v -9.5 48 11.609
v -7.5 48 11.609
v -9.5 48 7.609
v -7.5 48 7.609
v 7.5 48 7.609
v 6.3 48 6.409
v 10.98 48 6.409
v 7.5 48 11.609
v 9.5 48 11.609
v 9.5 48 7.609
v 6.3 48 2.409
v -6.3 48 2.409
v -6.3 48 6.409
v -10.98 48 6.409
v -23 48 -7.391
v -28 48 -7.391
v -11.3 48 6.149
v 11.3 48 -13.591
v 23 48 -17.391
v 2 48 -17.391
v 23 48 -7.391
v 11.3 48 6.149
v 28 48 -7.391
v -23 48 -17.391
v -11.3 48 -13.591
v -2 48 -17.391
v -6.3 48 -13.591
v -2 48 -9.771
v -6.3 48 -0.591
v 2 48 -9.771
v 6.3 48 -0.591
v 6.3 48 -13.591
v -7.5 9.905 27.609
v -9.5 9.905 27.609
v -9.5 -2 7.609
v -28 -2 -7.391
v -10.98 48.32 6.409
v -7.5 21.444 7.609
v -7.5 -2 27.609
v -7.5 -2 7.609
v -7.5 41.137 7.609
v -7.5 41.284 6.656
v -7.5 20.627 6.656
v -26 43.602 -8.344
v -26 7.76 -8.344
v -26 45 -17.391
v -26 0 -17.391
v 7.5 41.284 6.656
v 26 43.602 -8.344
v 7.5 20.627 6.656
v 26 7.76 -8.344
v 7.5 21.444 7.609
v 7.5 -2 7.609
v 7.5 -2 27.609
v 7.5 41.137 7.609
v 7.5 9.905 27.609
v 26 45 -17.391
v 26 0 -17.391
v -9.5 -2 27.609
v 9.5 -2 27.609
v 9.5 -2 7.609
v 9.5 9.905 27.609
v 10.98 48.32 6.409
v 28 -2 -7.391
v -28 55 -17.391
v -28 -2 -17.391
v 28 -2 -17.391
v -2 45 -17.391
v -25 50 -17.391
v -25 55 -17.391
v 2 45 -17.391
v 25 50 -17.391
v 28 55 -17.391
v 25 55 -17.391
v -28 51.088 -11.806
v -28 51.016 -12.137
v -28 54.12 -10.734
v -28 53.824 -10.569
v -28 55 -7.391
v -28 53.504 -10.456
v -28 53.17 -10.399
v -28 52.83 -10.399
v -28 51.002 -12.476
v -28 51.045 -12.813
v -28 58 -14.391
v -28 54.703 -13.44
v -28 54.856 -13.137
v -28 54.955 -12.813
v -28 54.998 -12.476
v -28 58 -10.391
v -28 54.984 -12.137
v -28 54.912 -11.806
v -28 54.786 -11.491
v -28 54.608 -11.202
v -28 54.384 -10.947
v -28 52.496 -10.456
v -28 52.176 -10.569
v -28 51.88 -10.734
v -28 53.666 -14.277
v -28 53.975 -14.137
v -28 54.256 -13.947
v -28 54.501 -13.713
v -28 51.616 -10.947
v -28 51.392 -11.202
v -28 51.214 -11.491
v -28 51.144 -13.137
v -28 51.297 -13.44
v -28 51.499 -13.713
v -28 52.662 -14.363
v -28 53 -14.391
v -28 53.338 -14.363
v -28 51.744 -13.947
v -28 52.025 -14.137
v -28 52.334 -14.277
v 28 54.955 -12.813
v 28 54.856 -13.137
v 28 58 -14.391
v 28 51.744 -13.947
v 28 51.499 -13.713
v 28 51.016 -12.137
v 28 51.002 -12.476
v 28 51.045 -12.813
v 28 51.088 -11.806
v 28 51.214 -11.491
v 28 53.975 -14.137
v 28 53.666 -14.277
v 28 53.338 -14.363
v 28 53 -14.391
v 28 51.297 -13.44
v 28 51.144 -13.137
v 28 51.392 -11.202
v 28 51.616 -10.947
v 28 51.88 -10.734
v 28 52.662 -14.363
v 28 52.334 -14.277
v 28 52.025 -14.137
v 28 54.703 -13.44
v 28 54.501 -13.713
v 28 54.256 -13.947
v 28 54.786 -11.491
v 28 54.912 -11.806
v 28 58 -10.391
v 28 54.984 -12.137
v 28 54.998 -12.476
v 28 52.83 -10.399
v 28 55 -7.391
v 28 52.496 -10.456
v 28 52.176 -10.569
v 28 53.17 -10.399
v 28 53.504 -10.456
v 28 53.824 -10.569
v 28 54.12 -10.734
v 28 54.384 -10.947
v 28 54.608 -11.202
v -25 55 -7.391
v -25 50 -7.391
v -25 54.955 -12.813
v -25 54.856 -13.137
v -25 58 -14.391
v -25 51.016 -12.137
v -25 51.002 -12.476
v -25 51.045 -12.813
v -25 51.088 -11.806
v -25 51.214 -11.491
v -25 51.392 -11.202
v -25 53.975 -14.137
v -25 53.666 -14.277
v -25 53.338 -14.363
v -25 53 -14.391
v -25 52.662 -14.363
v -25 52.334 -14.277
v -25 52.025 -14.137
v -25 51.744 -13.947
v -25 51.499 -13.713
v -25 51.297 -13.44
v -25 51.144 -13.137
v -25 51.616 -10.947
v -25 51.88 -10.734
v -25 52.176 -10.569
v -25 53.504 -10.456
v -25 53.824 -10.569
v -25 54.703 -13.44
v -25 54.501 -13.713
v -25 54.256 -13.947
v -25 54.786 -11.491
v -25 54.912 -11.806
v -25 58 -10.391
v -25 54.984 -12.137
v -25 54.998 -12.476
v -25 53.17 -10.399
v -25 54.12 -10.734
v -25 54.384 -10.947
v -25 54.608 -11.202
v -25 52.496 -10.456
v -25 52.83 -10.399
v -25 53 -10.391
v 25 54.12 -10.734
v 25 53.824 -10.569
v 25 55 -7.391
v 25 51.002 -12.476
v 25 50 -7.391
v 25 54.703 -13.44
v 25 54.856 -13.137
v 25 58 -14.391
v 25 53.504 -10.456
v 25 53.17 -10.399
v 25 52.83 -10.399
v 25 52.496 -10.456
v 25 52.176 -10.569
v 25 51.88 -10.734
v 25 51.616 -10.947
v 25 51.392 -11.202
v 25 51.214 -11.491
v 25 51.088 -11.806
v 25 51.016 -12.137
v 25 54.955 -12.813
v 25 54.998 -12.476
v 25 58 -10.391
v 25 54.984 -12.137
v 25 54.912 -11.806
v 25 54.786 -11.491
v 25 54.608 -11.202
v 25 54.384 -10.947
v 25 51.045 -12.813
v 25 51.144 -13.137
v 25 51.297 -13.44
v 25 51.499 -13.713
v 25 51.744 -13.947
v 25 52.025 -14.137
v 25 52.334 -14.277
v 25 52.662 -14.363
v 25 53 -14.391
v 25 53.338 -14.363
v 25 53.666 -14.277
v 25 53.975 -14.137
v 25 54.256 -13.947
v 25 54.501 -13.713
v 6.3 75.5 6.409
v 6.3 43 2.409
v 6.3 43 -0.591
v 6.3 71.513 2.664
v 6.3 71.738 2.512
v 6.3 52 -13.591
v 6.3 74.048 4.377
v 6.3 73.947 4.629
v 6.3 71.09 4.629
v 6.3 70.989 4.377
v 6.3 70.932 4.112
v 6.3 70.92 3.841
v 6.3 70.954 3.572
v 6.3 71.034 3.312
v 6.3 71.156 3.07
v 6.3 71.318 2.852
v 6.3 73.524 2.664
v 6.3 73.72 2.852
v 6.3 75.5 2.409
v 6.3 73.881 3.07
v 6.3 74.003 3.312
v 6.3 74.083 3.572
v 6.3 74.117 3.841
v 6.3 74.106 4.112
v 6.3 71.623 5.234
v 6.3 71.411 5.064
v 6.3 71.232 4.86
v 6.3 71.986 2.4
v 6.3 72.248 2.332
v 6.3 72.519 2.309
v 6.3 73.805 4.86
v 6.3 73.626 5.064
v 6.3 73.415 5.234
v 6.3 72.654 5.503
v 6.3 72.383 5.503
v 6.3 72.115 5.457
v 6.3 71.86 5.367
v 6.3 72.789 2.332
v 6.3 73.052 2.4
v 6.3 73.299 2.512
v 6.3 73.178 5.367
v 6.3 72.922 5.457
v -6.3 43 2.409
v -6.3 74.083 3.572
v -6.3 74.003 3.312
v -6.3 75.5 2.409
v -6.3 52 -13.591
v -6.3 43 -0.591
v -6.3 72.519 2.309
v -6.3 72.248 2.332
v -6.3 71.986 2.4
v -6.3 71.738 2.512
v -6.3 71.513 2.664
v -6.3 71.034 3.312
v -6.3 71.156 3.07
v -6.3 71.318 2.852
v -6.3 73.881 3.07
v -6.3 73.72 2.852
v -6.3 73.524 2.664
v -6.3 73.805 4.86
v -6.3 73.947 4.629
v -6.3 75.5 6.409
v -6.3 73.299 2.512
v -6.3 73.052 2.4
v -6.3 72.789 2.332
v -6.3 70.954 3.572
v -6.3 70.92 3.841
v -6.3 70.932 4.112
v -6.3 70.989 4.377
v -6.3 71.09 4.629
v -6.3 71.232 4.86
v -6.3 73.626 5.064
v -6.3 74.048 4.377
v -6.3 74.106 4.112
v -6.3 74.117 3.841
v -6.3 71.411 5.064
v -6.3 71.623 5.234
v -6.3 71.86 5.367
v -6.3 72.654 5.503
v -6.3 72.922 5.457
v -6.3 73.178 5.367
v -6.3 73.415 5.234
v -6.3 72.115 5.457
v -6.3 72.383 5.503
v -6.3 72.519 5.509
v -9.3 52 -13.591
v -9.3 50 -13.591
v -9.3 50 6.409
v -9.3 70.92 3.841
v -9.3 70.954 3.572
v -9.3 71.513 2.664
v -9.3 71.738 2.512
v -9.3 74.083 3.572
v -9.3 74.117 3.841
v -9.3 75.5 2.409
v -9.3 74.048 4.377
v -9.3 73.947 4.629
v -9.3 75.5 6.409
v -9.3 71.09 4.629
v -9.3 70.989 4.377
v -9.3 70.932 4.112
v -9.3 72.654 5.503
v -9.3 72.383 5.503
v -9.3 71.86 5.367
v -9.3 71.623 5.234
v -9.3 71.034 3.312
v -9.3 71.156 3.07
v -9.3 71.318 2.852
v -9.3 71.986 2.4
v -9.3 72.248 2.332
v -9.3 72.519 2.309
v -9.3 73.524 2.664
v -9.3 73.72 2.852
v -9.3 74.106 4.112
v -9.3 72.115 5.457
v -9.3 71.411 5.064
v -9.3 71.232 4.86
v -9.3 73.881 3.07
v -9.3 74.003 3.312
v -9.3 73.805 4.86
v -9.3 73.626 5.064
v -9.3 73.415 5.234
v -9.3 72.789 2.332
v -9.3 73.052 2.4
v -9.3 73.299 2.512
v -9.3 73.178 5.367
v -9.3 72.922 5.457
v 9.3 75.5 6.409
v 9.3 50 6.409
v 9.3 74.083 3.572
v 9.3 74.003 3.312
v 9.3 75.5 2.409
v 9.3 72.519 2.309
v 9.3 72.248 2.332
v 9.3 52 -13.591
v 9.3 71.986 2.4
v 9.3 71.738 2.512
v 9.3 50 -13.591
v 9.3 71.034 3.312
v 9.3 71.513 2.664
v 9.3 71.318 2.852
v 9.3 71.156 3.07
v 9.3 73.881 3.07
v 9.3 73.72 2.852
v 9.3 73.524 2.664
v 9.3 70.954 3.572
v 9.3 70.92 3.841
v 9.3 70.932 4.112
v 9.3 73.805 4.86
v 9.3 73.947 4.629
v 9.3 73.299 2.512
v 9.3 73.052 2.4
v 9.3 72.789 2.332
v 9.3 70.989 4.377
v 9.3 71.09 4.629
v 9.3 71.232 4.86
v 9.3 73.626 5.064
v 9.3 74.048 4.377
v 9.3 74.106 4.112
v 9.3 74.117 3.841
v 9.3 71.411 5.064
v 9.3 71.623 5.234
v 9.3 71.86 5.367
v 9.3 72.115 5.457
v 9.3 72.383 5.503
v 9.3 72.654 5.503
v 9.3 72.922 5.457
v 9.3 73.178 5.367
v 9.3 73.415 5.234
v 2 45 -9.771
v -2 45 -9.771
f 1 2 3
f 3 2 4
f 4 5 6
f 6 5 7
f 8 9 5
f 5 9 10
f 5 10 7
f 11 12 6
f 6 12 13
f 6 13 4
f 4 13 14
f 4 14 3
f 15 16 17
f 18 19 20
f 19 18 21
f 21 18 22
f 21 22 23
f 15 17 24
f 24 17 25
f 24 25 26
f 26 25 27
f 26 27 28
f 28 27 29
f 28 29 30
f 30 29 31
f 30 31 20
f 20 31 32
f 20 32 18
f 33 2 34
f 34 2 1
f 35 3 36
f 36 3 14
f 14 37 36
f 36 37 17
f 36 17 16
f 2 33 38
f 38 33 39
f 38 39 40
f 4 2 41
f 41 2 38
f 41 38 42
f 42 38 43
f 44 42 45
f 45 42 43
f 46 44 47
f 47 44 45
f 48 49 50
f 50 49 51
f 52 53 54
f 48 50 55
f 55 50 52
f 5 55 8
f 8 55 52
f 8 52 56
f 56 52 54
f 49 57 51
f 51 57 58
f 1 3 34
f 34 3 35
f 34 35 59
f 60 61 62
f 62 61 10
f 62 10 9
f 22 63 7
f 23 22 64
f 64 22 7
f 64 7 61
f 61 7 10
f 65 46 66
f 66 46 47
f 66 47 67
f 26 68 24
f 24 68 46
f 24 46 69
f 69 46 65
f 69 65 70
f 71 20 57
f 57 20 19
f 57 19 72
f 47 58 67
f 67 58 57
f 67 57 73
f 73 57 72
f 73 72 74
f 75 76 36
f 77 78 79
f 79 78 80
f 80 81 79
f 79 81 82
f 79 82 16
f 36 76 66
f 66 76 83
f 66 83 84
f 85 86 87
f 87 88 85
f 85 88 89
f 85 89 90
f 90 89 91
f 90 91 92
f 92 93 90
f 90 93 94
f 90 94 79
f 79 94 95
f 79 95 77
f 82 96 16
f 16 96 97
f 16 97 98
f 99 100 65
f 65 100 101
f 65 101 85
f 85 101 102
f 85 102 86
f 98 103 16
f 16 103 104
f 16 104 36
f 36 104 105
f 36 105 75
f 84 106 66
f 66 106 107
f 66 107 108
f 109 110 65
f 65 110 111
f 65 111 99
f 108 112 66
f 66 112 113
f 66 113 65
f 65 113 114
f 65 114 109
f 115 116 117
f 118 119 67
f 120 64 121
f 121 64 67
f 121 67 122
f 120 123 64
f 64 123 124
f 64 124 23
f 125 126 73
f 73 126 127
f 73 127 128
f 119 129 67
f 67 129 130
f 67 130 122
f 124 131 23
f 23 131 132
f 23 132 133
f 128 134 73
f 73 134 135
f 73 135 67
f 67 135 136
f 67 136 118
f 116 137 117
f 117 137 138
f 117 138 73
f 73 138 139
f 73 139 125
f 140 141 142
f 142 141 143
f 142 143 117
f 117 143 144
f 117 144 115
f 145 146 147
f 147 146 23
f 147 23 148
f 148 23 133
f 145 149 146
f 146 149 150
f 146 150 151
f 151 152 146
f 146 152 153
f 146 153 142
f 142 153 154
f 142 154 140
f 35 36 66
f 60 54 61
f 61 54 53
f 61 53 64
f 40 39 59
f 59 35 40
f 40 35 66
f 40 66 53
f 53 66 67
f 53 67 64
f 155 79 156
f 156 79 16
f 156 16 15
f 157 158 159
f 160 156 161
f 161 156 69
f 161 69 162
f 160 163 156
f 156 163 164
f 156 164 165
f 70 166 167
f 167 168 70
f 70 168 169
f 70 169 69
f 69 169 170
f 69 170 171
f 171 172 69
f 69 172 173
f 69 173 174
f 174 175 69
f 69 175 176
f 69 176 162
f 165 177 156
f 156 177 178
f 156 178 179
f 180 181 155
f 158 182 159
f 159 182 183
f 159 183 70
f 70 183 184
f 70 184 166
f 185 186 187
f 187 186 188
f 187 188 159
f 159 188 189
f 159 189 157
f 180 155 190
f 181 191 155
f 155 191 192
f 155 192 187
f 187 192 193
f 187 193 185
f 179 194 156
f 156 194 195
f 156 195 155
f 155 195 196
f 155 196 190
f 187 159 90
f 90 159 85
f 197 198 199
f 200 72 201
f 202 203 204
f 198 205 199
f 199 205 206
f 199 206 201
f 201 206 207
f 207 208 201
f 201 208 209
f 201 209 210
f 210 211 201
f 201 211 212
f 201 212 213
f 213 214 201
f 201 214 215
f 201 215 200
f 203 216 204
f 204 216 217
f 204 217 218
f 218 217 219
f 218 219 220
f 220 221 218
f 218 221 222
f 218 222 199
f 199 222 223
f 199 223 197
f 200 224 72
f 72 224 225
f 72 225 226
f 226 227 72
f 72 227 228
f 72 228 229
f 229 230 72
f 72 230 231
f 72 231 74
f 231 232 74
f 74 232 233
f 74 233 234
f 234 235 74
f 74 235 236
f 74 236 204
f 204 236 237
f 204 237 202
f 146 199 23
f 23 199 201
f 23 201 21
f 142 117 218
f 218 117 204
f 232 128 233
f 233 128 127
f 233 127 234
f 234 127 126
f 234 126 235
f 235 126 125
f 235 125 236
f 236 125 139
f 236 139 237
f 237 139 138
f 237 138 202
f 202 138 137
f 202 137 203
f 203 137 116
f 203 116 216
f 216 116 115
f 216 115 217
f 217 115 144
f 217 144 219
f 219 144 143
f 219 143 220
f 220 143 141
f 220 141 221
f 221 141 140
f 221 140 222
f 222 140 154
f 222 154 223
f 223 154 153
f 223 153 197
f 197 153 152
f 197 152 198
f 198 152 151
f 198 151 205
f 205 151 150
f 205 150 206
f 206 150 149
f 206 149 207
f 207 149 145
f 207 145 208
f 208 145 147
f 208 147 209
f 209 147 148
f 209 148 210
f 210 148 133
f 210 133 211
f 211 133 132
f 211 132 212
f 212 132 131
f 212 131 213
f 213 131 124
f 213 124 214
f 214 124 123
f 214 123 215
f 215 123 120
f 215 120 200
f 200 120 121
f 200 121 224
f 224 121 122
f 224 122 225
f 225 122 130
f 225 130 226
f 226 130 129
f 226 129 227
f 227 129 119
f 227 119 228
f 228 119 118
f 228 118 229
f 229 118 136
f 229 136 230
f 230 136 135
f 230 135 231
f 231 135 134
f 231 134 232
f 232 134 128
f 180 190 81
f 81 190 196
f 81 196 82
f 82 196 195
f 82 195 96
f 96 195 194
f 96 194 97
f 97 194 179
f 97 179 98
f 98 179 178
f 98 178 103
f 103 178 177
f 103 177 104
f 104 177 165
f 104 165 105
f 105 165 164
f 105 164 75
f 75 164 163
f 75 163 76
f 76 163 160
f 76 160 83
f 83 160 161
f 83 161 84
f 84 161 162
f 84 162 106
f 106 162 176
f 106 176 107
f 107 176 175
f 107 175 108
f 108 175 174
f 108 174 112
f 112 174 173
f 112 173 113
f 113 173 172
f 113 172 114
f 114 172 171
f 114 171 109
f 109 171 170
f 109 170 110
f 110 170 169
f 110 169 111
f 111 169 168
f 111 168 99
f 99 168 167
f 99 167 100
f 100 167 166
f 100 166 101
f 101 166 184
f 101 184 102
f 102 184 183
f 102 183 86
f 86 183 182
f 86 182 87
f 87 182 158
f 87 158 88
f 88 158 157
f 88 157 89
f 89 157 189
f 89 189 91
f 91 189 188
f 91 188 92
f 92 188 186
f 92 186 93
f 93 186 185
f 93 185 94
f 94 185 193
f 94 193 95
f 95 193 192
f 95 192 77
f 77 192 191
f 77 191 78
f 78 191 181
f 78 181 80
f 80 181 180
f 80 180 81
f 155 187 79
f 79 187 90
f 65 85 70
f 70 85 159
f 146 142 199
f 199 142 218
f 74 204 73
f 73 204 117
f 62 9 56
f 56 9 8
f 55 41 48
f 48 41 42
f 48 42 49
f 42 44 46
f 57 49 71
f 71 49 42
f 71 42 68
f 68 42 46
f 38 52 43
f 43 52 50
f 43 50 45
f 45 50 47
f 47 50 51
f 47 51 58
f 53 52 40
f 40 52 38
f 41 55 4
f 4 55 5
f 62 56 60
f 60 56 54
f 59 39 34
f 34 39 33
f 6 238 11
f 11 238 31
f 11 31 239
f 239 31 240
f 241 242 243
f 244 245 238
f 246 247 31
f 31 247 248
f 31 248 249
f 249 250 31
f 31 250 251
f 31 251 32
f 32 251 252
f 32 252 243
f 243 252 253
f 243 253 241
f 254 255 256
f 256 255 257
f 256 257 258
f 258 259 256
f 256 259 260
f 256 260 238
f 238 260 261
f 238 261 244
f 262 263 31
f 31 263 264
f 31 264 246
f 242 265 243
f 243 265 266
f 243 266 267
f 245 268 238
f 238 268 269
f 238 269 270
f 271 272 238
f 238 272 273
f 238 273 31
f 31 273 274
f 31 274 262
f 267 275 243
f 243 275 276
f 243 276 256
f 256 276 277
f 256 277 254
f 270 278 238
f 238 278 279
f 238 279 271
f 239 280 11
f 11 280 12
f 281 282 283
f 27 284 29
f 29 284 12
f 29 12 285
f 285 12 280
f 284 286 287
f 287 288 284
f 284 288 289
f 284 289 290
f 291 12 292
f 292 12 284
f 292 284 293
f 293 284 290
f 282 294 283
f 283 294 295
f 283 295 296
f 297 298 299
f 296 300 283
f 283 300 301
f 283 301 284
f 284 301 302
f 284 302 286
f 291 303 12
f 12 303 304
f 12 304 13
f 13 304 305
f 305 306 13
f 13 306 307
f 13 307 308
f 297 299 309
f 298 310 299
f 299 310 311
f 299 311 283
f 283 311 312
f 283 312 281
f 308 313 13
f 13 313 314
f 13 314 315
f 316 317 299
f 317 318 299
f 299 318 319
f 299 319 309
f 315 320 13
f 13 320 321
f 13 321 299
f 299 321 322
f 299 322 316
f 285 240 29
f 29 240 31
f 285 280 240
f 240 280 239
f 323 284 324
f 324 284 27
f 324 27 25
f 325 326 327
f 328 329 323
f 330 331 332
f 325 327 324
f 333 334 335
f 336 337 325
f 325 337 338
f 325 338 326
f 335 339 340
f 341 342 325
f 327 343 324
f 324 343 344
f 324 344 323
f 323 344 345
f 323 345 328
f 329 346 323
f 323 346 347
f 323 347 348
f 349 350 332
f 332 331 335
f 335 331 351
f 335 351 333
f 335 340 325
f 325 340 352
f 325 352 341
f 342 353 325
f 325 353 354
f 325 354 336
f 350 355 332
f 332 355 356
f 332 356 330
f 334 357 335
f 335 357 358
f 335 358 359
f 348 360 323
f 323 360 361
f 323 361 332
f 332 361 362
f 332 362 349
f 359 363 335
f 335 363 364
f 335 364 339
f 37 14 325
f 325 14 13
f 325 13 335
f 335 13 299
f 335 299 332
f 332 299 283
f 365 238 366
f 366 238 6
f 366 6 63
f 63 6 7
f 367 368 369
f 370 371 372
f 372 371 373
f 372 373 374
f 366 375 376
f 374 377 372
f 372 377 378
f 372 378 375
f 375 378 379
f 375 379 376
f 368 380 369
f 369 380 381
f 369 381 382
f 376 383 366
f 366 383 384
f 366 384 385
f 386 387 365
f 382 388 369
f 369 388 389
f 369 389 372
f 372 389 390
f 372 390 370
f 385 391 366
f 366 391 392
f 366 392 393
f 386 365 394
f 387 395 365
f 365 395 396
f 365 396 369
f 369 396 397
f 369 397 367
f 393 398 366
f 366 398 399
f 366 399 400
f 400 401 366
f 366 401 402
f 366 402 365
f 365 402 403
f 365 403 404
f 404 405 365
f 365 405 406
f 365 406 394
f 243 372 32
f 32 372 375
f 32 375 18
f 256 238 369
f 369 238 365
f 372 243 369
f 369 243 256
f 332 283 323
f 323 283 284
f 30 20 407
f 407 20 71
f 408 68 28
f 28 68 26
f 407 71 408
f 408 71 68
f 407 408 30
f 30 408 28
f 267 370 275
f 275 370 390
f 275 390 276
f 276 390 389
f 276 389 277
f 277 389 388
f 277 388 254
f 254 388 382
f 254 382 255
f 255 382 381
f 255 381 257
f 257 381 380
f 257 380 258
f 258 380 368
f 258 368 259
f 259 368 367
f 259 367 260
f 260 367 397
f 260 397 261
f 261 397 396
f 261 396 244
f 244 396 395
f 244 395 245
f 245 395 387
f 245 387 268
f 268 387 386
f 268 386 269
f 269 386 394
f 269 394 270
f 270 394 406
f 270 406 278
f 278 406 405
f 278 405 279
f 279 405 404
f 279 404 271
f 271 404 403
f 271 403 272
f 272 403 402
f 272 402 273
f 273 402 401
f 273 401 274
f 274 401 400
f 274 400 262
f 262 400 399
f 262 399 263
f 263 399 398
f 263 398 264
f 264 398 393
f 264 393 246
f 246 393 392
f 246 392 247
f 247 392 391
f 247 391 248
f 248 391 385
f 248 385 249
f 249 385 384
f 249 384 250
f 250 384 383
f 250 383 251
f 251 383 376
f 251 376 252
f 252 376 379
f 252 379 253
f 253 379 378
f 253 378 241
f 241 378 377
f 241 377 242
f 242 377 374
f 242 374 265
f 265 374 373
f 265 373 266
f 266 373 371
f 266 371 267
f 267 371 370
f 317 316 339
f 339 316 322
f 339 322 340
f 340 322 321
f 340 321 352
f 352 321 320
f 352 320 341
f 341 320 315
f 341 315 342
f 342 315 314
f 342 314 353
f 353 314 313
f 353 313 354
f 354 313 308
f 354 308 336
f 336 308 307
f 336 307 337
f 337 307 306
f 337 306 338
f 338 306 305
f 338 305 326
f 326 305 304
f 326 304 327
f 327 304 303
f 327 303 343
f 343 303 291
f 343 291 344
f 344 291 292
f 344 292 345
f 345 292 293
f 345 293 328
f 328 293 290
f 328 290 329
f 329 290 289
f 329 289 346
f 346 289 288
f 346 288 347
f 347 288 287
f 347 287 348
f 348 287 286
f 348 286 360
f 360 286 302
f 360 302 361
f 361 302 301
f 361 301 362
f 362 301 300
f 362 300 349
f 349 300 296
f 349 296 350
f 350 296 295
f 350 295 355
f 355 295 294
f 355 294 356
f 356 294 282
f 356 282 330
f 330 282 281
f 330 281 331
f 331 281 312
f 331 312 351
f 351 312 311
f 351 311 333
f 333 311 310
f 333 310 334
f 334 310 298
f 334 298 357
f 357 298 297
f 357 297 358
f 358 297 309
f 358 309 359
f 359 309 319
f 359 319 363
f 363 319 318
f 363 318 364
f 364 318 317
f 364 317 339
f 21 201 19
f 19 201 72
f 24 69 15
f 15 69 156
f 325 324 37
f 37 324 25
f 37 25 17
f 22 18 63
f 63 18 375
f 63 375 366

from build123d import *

# Parameters (mm, degrees)
SALIENTE_EXTRUIR1_DEPTH   = 45
SALIENTE_EXTRUIR1_2_DEPTH = 45
SALIENTE_EXTRUIR2_DEPTH   = 3
SALIENTE_EXTRUIR3_START   = -45
SALIENTE_EXTRUIR3_DEPTH   = 2
CROQUIS4_W                = 3
CROQUIS4_H                = 10
SALIENTE_EXTRUIR4_DEPTH   = 10
CROQUIS5_R                = 2
CORTAR_EXTRUIR1_DEPTH     = 87.967390625
CHAFL_N1_SIZE             = 3
CORTAR_EXTRUIR3_DEPTH     = 77.377856949
SALIENTE_EXTRUIR7_DEPTH   = 54
CROQUIS6_W                = 15
CROQUIS6_H                = 20
CORTAR_EXTRUIR5_DEPTH     = 74.806009458
CORTAR_EXTRUIR6_DEPTH     = 74.806009458
CORTAR_EXTRUIR7_DEPTH     = 77.377856949
CROQUIS16_W               = 12.6
CROQUIS16_H               = 3
CORTAR_EXTRUIR8_DEPTH     = 5
CROQUIS18_W               = 3
CROQUIS18_H               = 20
SALIENTE_EXTRUIR8_DEPTH   = 27.5
CORTAR_EXTRUIR9_REACH     = 90.622
CROQUIS21_W               = 4
CROQUIS21_H               = 10
CORTAR_EXTRUIR10_DEPTH    = 3
CROQUIS22_R               = 1.6
CORTAR_EXTRUIR11_DEPTH    = 89.621555367
CHAFL_N2_SIZE             = 2


with BuildPart() as part:
    # Croquis1 → Saliente-Extruir1 (new body)
    with BuildSketch(Plane(origin=(0, 0, 0), x_dir=(1, 0, 0), z_dir=(0, 1, 0))):
        Polygon((-26, 17.391304348), (-26, 8.344494697), (-7.5, -6.655505303), (-7.5, -32.608695652), (-9.5, -32.608695652), (-9.5, -7.608695652), (-28, 7.391304348), (-28, 17.391304348), align=None)
    extrude(amount=SALIENTE_EXTRUIR1_DEPTH)



with BuildPart() as body_2:
    # Croquis1 → Saliente-Extruir1 2 (new body)
    with BuildSketch(Plane(origin=(0, 0, 0), x_dir=(1, 0, 0), z_dir=(0, 1, 0))):
        Polygon((7.5, -6.655505303), (7.5, -32.608695652), (9.5, -32.608695652), (9.5, -7.608695652), (28, 7.391304348), (28, 17.391304348), (26, 17.391304348), (26, 8.344494697), align=None)
    extrude(amount=SALIENTE_EXTRUIR1_2_DEPTH)


with BuildPart() as part_1:
    add(part.part)

    add(body_2.part)  # Saliente-Extruir2 merges body 2
    # Croquis2 → Saliente-Extruir2 (add)
    with BuildSketch(Plane(origin=(0, 45, 0), x_dir=(1, 0, 0), z_dir=(0, 1, 0))):
        Polygon((-9.5, -32.608695652), (9.5, -32.608695652), (9.5, -7.608695652), (28, 7.391304348), (28, 17.391304348), (-28, 17.391304348), (-28, 7.391304348), (-9.5, -7.608695652), align=None)
    extrude(amount=SALIENTE_EXTRUIR2_DEPTH)

    # Croquis2<2> → Saliente-Extruir3 (add)
    with BuildSketch(Plane(origin=(0, 45, 0), x_dir=(1, 0, 0), z_dir=(0, 1, 0)).offset(SALIENTE_EXTRUIR3_START)):
        Polygon((-9.5, -32.608695652), (9.5, -32.608695652), (9.5, -7.608695652), (28, 7.391304348), (28, 17.391304348), (-28, 17.391304348), (-28, 7.391304348), (-9.5, -7.608695652), align=None)
    extrude(amount=-SALIENTE_EXTRUIR3_DEPTH)

    # Croquis4 → Saliente-Extruir4 (add)
    with BuildSketch(Plane(origin=(0, 48, 0), x_dir=(1, 0, 0), z_dir=(0, 1, 0))):
        with Locations((-26.5, 12.391304348)):
            Rectangle(CROQUIS4_W, CROQUIS4_H)
        with Locations((26.5, 12.391304348)):
            Rectangle(CROQUIS4_W, CROQUIS4_H)
    extrude(amount=SALIENTE_EXTRUIR4_DEPTH)

    # Croquis5 → Cortar-Extruir1 (cut, through all)
    with BuildSketch(Plane(origin=(28, 0, 0), x_dir=(0, 0, -1), z_dir=(1, 0, 0))):
        with Locations((12.391304348, 53)):
            Circle(CROQUIS5_R)
    extrude(amount=-CORTAR_EXTRUIR1_DEPTH, mode=Mode.SUBTRACT)

    # Chaflán1
    chafl_n1_edges = [part_1.edges().sort_by_distance(p)[0] for p in [
        (-26.5, 58, -7.391304348),
        (-26.5, 58, -17.391304348),
        (26.5, 58, -17.391304348),
        (26.5, 58, -7.391304348),
    ]]
    chamfer(chafl_n1_edges, length=CHAFL_N1_SIZE)

    # Croquis7 → Cortar-Extruir3 (cut, through all)
    with BuildSketch(Plane(origin=(9.5, 0, 0), x_dir=(0, 0, -1), z_dir=(1, 0, 0))):
        Polygon((-32.608695652, -2), (-11.608695652, 48), (-32.608695652, 48), align=None)
    extrude(amount=-CORTAR_EXTRUIR3_DEPTH, mode=Mode.SUBTRACT)

    # Croquis13 → Saliente-Extruir7 (add)
    with BuildSketch(Plane(origin=(-26, 0, 0), x_dir=(0, 0, -1), z_dir=(1, 0, 0))):
        Polygon((17.391304348, 45), (-12.868695652, 45), (-14.968695652, 40), align=None)
        Polygon((17.391304348, 0), (-31.768695652, 0), (-18.748695652, 31), align=None)
    extrude(amount=SALIENTE_EXTRUIR7_DEPTH)

    # Croquis6 → Cortar-Extruir5 (cut, through all)
    with BuildSketch(Plane.XZ.offset(2)):
        with Locations((0, 17.608695652)):
            Rectangle(CROQUIS6_W, CROQUIS6_H)
    extrude(amount=-CORTAR_EXTRUIR5_DEPTH, mode=Mode.SUBTRACT)

    # Croquis14 → Cortar-Extruir6 (cut, through all)
    with BuildSketch(Plane.XZ.offset(2)):
        Polygon((-28, -7.391304348), (-9.5, 7.608695652), (-9.5, 32.608695652), (-28, 32.608695652), align=None)
        Polygon((28, -7.391304348), (9.5, 7.608695652), (9.5, 32.608695652), (28, 32.608695652), align=None)
    extrude(amount=-CORTAR_EXTRUIR6_DEPTH, mode=Mode.SUBTRACT)

    # Croquis15 → Cortar-Extruir7 (cut, through all)
    with BuildSketch(Plane(origin=(9.5, 0, 0), x_dir=(0, 0, -1), z_dir=(1, 0, 0))):
        Polygon((-27.608695652, -2), (-27.608695652, 9.904761905), (-32.608695652, -2), align=None)
    extrude(amount=-CORTAR_EXTRUIR7_DEPTH, mode=Mode.SUBTRACT)

    # Croquis16 → Cortar-Extruir8 (cut)
    with BuildSketch(Plane(origin=(0, 48, 0), x_dir=(1, 0, 0), z_dir=(0, 1, 0))):
        with Locations((0, -0.908695652)):
            Rectangle(CROQUIS16_W, CROQUIS16_H)
    extrude(amount=-CORTAR_EXTRUIR8_DEPTH, mode=Mode.SUBTRACT)

    # Croquis18 → Saliente-Extruir8 (add)
    with BuildSketch(Plane(origin=(0, 48, 0), x_dir=(1, 0, 0), z_dir=(0, 1, 0))):
        with Locations((-7.8, 3.591304348)):
            Rectangle(CROQUIS18_W, CROQUIS18_H)
        with Locations((7.8, 3.591304348)):
            Rectangle(CROQUIS18_W, CROQUIS18_H)
    extrude(amount=SALIENTE_EXTRUIR8_DEPTH)

    # Cortar-Extruir9: up to this face of the body (flat: up to its plane)
    cortar_extruir9_end = Plane(part_1.part.faces().sort_by_distance((9.3, 61.75, -3.591304348))[0])
    # Croquis20 → Cortar-Extruir9 (cut, up to the picked face)
    with BuildSketch(Plane.ZY.offset(9.3), mode=Mode.PRIVATE) as cortar_extruir9_sk1:
        Polygon((2.408695652, 75.5), (-13.591304348, 52), (-13.591304348, 75.5), align=None)
    cortar_extruir9_tool1 = split(extrude(cortar_extruir9_sk1.sketch, amount=-CORTAR_EXTRUIR9_REACH, mode=Mode.PRIVATE), bisect_by=cortar_extruir9_end, keep=Keep.BOTH, mode=Mode.PRIVATE)
    add(cortar_extruir9_tool1.solids().sort_by(Axis((-9.3, 67.666667, -8.257971), (1, 0, 0)))[0], mode=Mode.SUBTRACT)

    # Croquis21 → Cortar-Extruir10 (cut)
    with BuildSketch(Plane(origin=(0, 48, 0), x_dir=(1, 0, 0), z_dir=(0, 1, 0))):
        with Locations((0, 14.771116856)):
            Rectangle(CROQUIS21_W, CROQUIS21_H)
    extrude(amount=-CORTAR_EXTRUIR10_DEPTH, mode=Mode.SUBTRACT)

    # Croquis22 → Cortar-Extruir11 (cut, through all)
    with BuildSketch(Plane(origin=(9.3, 0, 0), x_dir=(0, 0, -1), z_dir=(1, 0, 0))):
        with Locations((-3.908695652, 72.518591358)):
            Circle(CROQUIS22_R)
    extrude(amount=-CORTAR_EXTRUIR11_DEPTH, mode=Mode.SUBTRACT)

    # Chaflán2
    # the kernel refuses this chamfer: 2 mm, written as the material it adds along each edge
    with BuildSketch(Plane(origin=(-25, 48, -17.391304348), x_dir=(0.9996219169112968, -0.027495876610585647, 0), z_dir=(0, 0, 1)), Plane(origin=(25, 48, -17.391304348), x_dir=(0.027495876610585647, 0.9996219169112968, 0), z_dir=(0, 0, 1))) as chafl_n2_piece_1:
        Polygon((CHAFL_N2_SIZE * 0.999621916911, CHAFL_N2_SIZE * 0.0274958766106), (-CHAFL_N2_SIZE * 0.0274958766106, CHAFL_N2_SIZE * 0.999621916911), (0, 0), align=None)
    extrude(amount=10)
    with BuildSketch(Plane(origin=(-9.3, 48, 6.408695652), x_dir=(-0.9996219169112968, -0.027495876610585623, 0), z_dir=(0, 0, -1))) as chafl_n2_piece_2_section:
        Polygon((CHAFL_N2_SIZE * 0.999621916911, CHAFL_N2_SIZE * 0.0274958766106), (-CHAFL_N2_SIZE * 0.0274958766106, CHAFL_N2_SIZE * 0.999621916911), (0, 0), align=None)
    chafl_n2_piece_2 = extrude(amount=20, mode=Mode.PRIVATE)
    chafl_n2_piece_2 = split(chafl_n2_piece_2, bisect_by=Plane(origin=(-15.34165394, 48.600071078, 2.872219484), z_dir=(0.6298019584212193, 0, -0.7767557487195037)), keep=Keep.TOP, mode=Mode.PRIVATE)
    add(chafl_n2_piece_2)
    with BuildSketch(Plane(origin=(9.3, 48, 6.408695652), x_dir=(0.9996219169112968, -0.027495876610585623, 0), z_dir=(0, 0, -1))) as chafl_n2_piece_3_section:
        Polygon((CHAFL_N2_SIZE * 0.999621916911, -CHAFL_N2_SIZE * 0.0274958766106), (-CHAFL_N2_SIZE * 0.0274958766106, -CHAFL_N2_SIZE * 0.999621916911), (0, 0), align=None)
    chafl_n2_piece_3 = extrude(amount=20, mode=Mode.PRIVATE)
    chafl_n2_piece_3 = split(chafl_n2_piece_3, bisect_by=Plane(origin=(15.34165394, 48.600071078, 2.872219484), z_dir=(-0.6298019584212193, 0, -0.7767557487195037)), keep=Keep.TOP, mode=Mode.PRIVATE)
    add(chafl_n2_piece_3)


solid = part_1.part
